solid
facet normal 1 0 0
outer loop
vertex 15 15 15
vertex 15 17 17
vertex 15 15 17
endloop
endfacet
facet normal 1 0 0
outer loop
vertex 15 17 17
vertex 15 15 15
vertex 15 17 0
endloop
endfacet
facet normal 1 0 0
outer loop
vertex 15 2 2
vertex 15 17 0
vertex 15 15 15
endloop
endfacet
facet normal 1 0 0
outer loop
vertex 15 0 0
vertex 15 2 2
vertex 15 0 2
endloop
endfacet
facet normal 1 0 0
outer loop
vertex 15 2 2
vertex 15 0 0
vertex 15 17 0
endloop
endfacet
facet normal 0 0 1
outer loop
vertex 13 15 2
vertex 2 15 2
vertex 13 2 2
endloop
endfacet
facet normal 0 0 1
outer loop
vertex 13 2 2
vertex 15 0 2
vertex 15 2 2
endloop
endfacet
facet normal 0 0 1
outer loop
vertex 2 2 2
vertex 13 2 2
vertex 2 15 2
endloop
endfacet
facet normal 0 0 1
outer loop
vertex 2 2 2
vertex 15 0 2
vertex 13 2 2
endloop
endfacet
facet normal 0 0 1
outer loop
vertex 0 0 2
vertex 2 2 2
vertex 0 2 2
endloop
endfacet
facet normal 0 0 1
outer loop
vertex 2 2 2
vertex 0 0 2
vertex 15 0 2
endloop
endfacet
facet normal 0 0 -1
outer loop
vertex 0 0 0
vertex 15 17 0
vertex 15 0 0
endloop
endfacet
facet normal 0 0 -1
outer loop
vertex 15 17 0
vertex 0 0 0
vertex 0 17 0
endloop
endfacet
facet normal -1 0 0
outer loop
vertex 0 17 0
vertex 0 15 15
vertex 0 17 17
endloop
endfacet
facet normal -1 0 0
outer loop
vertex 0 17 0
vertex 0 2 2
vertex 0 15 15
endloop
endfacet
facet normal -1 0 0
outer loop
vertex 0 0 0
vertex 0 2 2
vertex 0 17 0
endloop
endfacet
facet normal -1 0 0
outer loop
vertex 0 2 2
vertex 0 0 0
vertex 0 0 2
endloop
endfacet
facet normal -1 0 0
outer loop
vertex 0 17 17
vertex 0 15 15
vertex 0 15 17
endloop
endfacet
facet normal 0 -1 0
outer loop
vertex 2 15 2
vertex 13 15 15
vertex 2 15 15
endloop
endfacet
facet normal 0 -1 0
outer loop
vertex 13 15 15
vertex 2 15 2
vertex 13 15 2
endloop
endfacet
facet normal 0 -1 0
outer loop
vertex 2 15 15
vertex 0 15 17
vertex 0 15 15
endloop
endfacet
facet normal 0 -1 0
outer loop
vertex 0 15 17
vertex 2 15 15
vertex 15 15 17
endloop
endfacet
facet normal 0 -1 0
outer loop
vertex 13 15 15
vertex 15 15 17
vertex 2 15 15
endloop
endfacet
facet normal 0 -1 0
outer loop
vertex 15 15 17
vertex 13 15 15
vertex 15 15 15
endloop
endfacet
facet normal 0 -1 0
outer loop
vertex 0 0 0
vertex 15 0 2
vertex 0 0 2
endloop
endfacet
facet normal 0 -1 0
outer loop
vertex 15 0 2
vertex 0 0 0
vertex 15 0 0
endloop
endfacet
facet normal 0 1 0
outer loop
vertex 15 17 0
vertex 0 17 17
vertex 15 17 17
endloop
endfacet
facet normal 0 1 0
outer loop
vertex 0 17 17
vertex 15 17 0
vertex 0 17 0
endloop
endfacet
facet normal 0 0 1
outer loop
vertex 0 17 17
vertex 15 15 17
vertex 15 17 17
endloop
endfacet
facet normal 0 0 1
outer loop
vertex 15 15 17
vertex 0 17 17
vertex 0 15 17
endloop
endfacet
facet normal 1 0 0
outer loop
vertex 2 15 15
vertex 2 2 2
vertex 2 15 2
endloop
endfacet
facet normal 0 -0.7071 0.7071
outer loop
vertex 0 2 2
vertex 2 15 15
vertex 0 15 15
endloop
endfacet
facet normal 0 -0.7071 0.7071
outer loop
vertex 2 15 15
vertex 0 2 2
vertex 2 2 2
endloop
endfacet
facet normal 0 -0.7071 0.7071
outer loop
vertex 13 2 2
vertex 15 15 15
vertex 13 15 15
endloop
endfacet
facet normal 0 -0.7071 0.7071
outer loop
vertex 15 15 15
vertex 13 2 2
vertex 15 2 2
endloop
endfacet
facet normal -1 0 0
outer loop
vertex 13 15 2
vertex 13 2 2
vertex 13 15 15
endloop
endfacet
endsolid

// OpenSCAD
cube([15,15,2]);

translate([0,17,0])rotate([90,0,0])cube([15,17,2]);
rib();
translate([13,0,0])rib();


module rib()
{
translate([2,0,0])
rotate([0,-90,0])
linear_extrude(2)
{
polygon([[0,0],[0,17],[17,17]]);   
}
}
